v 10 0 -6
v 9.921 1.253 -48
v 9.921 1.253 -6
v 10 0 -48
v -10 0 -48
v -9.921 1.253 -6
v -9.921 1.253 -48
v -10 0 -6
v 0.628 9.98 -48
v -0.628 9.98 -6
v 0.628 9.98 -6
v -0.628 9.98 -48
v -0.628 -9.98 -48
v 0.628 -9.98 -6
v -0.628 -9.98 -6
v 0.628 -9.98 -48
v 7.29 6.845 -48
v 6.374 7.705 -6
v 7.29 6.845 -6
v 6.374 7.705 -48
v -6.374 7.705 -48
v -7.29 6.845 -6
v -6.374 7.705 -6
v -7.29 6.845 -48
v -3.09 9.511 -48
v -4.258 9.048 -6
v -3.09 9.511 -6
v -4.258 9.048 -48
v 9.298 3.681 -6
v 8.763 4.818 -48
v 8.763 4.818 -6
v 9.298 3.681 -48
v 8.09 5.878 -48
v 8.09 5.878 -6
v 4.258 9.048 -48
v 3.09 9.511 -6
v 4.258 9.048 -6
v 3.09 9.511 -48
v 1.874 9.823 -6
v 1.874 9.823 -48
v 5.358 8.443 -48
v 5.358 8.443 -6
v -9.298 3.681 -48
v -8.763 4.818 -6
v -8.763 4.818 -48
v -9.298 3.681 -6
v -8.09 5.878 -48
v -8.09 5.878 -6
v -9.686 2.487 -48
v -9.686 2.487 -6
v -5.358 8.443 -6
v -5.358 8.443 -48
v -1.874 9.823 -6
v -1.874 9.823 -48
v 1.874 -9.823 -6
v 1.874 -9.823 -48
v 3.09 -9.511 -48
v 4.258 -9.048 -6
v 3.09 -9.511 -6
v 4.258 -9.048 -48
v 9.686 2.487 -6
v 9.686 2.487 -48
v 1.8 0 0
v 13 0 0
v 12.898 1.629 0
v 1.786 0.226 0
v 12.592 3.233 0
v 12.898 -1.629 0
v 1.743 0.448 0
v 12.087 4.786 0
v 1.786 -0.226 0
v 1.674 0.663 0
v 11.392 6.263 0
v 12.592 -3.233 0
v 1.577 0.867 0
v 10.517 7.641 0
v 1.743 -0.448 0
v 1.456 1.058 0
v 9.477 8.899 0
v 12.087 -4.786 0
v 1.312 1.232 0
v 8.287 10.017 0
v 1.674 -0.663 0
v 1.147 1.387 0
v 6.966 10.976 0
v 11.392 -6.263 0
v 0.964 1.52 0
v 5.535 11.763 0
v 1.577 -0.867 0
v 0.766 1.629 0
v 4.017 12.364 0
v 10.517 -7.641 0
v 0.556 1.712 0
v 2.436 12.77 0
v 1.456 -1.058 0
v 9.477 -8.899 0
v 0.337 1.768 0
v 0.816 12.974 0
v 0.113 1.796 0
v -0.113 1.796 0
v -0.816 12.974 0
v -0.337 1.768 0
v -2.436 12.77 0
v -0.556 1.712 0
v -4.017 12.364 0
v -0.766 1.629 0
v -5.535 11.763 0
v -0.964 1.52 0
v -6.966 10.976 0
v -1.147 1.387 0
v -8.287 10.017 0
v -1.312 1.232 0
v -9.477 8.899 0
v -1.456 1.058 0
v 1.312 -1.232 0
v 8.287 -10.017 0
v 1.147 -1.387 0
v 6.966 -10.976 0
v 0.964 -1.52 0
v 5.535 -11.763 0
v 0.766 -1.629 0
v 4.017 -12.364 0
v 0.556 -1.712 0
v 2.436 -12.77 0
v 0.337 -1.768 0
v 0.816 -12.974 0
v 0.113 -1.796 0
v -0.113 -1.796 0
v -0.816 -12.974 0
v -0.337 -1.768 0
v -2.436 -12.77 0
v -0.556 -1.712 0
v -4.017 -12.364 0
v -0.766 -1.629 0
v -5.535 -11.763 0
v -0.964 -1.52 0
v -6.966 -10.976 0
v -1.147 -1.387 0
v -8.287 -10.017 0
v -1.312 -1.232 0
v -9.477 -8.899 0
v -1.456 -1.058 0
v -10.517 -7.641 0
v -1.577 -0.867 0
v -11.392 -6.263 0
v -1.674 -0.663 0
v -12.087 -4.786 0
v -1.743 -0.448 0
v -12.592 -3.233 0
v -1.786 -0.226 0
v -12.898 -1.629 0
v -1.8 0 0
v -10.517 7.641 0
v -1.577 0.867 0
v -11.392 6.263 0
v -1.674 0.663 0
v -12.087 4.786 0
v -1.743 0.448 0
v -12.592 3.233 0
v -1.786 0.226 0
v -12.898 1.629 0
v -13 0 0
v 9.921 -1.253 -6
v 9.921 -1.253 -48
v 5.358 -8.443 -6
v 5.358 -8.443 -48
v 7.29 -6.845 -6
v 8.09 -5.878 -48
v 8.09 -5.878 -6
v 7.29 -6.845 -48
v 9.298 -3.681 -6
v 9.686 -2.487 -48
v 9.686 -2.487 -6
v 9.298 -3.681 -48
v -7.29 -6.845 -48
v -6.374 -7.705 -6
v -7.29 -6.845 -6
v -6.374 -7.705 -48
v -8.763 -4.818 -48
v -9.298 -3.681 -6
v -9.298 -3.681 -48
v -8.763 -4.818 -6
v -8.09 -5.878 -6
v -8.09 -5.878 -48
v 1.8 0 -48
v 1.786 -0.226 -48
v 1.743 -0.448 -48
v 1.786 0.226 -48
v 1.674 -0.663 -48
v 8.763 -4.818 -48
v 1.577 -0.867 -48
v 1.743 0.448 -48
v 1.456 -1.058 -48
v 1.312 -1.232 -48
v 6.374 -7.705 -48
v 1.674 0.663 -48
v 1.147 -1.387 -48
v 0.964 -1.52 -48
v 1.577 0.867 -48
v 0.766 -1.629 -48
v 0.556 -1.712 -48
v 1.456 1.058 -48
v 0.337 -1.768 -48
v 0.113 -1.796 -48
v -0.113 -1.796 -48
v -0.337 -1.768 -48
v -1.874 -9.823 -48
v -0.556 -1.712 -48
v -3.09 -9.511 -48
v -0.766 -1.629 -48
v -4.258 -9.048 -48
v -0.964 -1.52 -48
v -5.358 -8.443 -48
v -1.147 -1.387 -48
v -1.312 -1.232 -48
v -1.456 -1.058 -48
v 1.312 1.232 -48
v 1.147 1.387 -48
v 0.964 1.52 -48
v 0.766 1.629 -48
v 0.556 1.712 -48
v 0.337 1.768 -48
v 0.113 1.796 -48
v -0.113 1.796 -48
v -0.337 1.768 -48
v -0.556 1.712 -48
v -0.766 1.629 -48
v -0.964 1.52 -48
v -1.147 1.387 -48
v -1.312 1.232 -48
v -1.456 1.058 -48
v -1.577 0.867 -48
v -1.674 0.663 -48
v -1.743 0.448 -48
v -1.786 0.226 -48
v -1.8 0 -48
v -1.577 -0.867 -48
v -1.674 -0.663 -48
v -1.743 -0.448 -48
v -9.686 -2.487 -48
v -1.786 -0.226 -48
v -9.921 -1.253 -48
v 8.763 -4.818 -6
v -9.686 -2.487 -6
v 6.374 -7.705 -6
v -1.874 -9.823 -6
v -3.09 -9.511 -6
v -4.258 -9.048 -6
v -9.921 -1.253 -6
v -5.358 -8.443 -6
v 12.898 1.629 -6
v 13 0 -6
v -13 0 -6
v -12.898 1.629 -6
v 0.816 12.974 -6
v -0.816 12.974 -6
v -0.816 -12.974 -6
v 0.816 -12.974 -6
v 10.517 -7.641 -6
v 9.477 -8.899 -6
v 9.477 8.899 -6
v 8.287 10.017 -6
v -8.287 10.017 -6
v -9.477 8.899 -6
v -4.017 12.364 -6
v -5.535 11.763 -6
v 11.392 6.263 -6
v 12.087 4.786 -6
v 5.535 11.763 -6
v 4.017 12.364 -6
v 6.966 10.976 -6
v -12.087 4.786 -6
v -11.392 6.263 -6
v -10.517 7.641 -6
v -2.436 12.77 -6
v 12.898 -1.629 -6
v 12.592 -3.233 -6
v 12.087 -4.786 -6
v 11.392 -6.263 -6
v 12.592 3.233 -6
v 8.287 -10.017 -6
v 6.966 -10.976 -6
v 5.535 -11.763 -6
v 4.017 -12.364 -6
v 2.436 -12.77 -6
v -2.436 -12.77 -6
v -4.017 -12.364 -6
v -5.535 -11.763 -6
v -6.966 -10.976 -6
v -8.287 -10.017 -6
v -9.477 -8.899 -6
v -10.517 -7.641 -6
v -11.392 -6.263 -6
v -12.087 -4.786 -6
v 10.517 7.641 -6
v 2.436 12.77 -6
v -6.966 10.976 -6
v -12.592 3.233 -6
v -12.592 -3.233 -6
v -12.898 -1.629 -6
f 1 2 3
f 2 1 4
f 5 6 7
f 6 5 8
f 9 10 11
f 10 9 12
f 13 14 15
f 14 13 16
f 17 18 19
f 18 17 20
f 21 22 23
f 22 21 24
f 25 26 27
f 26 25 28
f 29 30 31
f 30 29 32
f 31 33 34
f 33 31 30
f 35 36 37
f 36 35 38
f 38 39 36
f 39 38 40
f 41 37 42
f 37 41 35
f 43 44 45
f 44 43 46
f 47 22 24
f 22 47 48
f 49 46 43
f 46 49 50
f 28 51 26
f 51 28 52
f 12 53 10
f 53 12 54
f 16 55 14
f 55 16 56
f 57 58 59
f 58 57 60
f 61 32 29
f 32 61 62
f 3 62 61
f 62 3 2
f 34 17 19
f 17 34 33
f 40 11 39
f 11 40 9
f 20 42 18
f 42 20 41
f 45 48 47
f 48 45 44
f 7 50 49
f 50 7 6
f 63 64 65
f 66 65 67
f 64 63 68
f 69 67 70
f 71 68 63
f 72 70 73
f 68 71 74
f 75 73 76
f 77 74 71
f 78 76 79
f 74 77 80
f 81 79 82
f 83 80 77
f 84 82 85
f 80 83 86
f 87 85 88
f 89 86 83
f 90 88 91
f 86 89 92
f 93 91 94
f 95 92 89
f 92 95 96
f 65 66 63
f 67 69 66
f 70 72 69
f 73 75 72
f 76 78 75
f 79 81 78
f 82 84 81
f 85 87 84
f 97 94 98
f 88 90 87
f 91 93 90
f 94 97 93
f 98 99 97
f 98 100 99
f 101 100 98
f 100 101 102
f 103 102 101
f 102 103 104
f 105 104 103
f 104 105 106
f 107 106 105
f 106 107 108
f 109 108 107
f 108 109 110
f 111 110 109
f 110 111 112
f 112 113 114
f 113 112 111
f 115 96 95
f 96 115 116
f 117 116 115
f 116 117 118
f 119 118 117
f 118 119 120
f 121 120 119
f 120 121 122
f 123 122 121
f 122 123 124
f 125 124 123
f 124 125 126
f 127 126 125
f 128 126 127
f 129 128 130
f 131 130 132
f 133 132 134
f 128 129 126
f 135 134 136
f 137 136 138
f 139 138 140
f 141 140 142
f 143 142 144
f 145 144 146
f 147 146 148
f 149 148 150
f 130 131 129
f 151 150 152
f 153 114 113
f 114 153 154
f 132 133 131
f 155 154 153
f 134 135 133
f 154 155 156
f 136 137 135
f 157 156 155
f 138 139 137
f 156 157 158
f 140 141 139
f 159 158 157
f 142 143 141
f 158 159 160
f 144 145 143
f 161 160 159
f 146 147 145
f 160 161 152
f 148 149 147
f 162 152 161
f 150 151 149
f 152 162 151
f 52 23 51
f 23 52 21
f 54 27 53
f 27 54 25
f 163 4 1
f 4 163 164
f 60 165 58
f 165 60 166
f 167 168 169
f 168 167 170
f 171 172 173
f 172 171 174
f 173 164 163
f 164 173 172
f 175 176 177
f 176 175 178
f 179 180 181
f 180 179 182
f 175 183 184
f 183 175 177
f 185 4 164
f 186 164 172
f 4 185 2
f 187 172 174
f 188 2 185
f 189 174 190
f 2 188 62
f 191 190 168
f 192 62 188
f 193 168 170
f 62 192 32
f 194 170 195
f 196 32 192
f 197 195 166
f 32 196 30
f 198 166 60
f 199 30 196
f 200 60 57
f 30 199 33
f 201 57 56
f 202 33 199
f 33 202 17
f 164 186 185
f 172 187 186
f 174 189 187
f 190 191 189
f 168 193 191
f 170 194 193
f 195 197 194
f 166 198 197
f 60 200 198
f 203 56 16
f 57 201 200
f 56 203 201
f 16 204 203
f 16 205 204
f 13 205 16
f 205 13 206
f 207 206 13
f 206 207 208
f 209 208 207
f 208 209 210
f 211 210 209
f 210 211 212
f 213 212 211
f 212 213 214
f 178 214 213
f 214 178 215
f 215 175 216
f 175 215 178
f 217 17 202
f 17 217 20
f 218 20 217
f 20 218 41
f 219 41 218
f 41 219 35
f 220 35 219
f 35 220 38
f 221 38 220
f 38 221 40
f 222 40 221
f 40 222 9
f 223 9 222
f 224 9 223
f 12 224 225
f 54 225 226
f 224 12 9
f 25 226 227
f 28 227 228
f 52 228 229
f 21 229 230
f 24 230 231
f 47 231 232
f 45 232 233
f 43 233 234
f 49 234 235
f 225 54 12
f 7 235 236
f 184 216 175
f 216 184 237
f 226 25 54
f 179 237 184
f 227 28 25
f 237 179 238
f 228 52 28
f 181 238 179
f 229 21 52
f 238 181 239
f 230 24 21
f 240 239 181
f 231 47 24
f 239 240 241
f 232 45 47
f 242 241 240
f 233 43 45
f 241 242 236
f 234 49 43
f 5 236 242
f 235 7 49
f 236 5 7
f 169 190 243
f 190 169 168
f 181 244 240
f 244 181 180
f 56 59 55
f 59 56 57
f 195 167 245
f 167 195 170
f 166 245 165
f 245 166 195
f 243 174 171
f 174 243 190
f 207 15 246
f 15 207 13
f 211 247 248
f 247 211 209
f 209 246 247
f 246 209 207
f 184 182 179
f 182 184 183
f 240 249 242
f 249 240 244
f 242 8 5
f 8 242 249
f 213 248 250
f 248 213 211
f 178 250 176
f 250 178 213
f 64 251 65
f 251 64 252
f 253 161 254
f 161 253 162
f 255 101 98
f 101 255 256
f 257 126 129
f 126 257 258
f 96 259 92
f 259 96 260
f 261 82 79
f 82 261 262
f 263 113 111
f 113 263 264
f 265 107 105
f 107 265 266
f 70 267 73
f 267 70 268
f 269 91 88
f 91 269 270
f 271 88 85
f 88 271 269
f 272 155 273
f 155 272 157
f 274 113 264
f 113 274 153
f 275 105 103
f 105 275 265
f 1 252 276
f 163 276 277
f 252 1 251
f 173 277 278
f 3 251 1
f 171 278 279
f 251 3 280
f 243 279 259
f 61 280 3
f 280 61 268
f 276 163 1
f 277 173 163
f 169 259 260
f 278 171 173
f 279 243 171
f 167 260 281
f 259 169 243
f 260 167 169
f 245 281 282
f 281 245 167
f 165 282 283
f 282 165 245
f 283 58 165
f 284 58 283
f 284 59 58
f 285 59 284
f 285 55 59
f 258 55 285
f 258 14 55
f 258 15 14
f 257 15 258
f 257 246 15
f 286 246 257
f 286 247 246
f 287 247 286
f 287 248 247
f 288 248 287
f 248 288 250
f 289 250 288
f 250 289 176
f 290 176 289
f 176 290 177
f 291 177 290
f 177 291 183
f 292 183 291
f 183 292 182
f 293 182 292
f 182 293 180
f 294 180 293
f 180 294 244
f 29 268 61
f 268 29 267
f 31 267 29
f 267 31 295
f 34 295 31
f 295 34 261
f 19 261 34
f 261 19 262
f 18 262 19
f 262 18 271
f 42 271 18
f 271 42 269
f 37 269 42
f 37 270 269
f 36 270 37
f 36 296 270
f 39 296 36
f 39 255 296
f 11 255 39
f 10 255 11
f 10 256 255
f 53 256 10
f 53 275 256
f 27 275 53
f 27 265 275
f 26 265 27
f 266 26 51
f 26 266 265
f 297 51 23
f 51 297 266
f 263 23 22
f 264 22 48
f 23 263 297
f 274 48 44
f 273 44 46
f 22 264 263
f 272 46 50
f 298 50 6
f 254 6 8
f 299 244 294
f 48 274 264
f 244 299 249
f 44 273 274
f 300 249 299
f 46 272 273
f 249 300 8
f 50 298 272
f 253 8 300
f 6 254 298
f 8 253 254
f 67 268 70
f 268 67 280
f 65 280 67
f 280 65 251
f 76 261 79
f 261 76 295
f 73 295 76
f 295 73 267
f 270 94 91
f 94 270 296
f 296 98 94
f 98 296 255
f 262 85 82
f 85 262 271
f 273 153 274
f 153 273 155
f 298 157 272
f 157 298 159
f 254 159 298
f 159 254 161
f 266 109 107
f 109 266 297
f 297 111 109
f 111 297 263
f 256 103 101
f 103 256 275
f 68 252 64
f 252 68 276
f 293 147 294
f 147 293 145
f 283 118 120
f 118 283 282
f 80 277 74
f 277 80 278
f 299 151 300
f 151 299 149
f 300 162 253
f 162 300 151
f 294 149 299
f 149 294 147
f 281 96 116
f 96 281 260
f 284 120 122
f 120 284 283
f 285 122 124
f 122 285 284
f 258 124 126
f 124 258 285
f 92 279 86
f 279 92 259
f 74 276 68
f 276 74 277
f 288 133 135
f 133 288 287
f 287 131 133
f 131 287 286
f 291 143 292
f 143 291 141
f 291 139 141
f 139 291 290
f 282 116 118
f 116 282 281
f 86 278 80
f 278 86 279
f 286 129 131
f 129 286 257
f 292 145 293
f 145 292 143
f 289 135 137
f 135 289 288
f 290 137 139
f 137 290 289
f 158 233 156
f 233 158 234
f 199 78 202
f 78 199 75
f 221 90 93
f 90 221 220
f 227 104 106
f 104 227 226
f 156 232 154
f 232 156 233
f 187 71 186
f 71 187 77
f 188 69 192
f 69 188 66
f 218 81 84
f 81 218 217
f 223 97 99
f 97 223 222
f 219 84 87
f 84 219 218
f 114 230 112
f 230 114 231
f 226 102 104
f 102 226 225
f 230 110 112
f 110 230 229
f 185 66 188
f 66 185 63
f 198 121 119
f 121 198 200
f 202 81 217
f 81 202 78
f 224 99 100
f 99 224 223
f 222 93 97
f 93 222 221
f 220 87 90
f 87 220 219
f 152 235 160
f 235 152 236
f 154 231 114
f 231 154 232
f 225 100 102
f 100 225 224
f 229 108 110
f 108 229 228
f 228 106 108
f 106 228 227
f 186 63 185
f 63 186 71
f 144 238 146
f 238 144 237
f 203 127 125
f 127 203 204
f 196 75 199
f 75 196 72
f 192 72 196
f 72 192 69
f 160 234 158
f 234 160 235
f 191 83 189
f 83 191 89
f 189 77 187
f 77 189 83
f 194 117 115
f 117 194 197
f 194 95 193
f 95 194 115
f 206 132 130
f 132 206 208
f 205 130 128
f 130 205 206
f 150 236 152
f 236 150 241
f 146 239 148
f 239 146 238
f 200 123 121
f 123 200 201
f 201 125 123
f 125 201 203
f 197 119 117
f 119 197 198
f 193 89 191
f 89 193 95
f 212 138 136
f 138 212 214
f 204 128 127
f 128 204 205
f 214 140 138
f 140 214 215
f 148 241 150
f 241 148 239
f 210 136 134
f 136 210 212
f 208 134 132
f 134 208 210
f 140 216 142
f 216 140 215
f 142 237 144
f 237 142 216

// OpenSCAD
$fn = 50;


difference() {
	union() {
		translate(v = [0, 0, -48.0000000000]) {
			cylinder(h = 48, r = 10.0000000000);
		}
		translate(v = [0, 0, -6.0000000000]) {
			cylinder(h = 6, r = 13.0000000000);
		}
	}
	union() {
		#translate(v = [0, 0, -48]) {
			cylinder(h = 48, r = 1.8000000000);
		}
	}
}
